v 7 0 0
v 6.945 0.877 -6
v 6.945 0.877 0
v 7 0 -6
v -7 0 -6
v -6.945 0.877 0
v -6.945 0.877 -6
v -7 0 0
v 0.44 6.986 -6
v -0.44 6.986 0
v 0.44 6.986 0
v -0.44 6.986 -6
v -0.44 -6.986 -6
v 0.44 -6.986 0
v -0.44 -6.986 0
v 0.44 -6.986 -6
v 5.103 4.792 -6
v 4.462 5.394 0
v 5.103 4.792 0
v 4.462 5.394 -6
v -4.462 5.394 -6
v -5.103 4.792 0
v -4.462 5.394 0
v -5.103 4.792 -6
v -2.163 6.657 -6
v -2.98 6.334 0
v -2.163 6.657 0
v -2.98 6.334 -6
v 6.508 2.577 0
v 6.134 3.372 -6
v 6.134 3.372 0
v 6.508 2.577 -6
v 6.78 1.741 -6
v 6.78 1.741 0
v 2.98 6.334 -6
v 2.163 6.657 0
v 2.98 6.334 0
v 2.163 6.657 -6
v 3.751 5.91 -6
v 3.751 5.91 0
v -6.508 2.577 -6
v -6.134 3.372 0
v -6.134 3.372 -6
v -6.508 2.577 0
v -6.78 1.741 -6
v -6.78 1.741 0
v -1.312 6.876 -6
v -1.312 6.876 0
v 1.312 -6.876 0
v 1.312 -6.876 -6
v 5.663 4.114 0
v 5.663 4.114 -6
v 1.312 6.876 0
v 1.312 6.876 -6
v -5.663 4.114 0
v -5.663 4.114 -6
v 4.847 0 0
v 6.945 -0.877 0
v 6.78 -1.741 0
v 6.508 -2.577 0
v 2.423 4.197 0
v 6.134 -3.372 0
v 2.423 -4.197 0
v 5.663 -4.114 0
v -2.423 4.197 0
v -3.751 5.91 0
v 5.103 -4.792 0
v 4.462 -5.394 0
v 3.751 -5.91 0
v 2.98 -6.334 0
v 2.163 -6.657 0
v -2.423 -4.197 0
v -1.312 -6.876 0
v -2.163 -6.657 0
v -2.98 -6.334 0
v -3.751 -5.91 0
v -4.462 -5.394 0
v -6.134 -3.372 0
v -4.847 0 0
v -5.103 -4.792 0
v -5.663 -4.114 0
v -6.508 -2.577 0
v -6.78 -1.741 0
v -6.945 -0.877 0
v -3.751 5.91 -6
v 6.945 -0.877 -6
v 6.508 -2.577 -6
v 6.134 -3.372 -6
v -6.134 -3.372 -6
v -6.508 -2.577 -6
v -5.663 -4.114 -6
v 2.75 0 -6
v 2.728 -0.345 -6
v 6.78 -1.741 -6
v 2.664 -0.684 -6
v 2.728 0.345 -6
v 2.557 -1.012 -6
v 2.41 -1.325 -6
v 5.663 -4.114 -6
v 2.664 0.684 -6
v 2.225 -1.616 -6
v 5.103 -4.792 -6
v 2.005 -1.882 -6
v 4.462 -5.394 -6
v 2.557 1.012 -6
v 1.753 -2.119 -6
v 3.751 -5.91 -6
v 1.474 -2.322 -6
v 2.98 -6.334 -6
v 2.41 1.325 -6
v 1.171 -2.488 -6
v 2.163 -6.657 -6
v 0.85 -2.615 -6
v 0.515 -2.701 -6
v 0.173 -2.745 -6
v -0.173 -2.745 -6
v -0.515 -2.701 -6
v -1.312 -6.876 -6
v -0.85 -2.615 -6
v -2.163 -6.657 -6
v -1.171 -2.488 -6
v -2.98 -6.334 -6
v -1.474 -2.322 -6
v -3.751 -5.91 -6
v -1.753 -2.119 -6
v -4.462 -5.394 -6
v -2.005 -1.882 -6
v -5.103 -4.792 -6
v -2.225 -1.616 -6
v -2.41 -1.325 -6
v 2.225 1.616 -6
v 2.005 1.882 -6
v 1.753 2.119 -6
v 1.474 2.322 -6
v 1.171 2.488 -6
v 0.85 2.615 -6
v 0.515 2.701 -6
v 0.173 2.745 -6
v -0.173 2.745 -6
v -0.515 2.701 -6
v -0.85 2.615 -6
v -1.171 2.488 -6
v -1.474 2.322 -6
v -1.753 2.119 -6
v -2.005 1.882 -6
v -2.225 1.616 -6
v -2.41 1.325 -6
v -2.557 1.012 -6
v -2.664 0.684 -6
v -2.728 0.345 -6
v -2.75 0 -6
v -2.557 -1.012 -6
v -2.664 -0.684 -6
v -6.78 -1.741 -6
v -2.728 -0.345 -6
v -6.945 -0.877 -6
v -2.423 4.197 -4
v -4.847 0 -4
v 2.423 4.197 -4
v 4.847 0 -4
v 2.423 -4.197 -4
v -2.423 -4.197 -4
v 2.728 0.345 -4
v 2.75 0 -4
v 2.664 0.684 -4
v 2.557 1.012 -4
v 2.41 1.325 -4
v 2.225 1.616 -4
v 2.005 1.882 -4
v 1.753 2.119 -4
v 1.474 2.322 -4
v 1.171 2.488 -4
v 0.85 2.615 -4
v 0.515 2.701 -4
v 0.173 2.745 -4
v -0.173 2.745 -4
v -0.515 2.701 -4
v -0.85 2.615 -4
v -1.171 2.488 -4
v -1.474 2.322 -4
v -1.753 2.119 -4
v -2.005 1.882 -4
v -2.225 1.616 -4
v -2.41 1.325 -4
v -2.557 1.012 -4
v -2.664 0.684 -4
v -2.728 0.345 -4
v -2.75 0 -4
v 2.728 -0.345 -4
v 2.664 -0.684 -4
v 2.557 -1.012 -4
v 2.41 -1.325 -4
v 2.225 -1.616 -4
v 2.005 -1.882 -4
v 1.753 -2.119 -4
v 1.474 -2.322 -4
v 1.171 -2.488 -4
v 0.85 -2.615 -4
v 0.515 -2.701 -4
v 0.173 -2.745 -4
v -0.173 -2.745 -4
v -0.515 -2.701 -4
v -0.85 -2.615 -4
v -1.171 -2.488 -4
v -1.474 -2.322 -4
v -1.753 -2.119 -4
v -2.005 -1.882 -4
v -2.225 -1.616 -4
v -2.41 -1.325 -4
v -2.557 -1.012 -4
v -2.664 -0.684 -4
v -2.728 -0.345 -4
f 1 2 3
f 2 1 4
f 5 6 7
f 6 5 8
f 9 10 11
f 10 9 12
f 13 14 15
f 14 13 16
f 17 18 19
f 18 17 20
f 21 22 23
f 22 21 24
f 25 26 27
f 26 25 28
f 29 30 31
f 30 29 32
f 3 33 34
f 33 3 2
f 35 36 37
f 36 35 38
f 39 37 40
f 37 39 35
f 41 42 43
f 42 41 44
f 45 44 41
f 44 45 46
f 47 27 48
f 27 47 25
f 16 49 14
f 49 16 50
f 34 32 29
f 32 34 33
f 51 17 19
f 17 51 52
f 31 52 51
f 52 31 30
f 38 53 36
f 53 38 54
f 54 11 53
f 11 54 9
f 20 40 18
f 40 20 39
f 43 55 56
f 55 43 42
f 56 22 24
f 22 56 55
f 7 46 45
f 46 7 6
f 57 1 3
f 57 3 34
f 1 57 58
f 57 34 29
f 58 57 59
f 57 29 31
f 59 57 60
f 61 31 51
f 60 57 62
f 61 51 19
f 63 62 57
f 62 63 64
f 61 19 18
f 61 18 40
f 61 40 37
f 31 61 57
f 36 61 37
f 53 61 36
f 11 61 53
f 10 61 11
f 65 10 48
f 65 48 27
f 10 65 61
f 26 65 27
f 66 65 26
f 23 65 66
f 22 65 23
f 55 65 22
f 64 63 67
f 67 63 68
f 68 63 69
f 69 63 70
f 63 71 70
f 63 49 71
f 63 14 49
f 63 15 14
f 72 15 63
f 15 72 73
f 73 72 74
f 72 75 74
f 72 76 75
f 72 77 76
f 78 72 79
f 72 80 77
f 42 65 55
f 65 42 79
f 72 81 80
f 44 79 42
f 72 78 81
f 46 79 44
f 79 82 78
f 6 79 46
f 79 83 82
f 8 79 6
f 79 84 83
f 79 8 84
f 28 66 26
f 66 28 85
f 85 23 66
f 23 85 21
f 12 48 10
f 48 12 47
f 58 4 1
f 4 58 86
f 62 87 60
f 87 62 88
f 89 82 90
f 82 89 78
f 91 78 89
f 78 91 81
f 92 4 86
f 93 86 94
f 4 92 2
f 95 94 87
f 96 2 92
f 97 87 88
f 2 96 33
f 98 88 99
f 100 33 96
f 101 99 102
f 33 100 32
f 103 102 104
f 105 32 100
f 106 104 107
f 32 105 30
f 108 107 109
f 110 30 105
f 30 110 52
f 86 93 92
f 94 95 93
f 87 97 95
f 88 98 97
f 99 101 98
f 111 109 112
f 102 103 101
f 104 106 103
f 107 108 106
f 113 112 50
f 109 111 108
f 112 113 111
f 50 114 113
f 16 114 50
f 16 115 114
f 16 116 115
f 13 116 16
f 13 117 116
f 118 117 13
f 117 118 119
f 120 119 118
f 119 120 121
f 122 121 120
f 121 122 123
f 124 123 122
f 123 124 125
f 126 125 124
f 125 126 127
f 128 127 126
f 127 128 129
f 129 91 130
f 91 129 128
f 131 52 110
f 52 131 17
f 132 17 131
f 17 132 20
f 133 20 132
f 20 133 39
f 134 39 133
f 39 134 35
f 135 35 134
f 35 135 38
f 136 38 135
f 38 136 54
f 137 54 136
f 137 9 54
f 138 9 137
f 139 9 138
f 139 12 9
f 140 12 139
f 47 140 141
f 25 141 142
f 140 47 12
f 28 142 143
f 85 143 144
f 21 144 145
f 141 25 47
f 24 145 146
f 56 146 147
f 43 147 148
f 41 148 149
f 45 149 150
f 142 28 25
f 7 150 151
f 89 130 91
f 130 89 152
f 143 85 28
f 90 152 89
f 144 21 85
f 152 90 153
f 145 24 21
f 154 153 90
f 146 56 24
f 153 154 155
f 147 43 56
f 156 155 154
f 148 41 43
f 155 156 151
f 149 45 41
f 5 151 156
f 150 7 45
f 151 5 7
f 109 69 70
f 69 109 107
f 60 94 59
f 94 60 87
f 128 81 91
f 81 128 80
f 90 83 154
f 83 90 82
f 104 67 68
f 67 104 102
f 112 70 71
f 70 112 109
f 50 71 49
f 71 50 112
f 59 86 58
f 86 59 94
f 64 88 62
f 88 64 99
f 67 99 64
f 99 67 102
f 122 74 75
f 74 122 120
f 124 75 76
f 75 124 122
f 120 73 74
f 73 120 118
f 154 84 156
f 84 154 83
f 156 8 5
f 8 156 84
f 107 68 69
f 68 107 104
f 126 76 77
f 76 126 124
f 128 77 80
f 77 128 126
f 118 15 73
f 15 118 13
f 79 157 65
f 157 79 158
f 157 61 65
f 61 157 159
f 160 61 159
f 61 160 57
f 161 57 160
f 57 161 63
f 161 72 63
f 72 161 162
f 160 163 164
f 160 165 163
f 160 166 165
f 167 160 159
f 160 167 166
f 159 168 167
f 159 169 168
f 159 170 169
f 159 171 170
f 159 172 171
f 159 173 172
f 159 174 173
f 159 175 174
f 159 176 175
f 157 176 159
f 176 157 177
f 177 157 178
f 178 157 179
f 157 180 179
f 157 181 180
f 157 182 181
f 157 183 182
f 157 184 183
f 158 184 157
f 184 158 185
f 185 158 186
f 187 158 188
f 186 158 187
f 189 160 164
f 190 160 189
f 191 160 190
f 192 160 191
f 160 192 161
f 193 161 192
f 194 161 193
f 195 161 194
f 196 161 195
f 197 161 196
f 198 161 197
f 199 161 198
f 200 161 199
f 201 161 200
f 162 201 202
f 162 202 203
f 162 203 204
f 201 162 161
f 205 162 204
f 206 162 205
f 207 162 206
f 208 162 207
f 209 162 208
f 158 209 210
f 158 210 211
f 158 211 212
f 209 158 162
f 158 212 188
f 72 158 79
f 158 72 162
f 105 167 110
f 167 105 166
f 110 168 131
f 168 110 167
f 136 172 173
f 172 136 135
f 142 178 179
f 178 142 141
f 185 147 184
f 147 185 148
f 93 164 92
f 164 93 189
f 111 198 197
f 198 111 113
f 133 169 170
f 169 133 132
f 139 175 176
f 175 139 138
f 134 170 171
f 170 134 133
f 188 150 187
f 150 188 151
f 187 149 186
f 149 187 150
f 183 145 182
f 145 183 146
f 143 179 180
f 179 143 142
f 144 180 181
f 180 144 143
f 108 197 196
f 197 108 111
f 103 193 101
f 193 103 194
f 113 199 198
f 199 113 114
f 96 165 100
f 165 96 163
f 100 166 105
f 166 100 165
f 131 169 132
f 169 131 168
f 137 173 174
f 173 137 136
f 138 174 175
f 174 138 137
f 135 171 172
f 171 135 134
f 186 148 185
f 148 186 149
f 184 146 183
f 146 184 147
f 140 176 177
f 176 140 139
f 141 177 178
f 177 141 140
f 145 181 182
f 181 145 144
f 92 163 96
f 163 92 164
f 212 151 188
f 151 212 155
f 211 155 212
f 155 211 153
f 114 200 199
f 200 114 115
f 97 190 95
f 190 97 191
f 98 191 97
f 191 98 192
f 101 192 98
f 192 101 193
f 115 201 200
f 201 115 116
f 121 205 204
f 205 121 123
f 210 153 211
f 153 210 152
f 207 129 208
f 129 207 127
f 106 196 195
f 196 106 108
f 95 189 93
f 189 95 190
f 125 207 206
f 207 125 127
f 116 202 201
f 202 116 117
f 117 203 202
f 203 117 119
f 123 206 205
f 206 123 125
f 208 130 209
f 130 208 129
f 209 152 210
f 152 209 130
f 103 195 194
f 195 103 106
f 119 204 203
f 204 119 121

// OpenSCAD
$fn = 50;


difference() {
	union() {
		translate(v = [0, 0, -6.0000000000]) {
			cylinder(h = 6.0000000000, r = 7.0000000000);
		}
		translate(v = [0, 0, -4.5000000000]) {
			cylinder(h = 4.5000000000, r = 2.8750000000);
		}
	}
	union() {
		translate(v = [0, 0, 0]) {
			rotate(a = [0, 0, 0]) {
				difference() {
					union() {
						translate(v = [0, 0, -4]) {
							linear_extrude(height = 4) {
								polygon(points = [[4.8468000000, 0.0000000000], [2.4234000000, 4.1974519271], [-2.4234000000, 4.1974519271], [-4.8468000000, 0.0000000000], [-2.4234000000, -4.1974519271], [2.4234000000, -4.1974519271]]);
							}
						}
					}
					union();
				}
			}
		}
		#translate(v = [0, 0, -100.0000000000]) {
			cylinder(h = 200, r = 2.7500000000);
		}
	}
}
